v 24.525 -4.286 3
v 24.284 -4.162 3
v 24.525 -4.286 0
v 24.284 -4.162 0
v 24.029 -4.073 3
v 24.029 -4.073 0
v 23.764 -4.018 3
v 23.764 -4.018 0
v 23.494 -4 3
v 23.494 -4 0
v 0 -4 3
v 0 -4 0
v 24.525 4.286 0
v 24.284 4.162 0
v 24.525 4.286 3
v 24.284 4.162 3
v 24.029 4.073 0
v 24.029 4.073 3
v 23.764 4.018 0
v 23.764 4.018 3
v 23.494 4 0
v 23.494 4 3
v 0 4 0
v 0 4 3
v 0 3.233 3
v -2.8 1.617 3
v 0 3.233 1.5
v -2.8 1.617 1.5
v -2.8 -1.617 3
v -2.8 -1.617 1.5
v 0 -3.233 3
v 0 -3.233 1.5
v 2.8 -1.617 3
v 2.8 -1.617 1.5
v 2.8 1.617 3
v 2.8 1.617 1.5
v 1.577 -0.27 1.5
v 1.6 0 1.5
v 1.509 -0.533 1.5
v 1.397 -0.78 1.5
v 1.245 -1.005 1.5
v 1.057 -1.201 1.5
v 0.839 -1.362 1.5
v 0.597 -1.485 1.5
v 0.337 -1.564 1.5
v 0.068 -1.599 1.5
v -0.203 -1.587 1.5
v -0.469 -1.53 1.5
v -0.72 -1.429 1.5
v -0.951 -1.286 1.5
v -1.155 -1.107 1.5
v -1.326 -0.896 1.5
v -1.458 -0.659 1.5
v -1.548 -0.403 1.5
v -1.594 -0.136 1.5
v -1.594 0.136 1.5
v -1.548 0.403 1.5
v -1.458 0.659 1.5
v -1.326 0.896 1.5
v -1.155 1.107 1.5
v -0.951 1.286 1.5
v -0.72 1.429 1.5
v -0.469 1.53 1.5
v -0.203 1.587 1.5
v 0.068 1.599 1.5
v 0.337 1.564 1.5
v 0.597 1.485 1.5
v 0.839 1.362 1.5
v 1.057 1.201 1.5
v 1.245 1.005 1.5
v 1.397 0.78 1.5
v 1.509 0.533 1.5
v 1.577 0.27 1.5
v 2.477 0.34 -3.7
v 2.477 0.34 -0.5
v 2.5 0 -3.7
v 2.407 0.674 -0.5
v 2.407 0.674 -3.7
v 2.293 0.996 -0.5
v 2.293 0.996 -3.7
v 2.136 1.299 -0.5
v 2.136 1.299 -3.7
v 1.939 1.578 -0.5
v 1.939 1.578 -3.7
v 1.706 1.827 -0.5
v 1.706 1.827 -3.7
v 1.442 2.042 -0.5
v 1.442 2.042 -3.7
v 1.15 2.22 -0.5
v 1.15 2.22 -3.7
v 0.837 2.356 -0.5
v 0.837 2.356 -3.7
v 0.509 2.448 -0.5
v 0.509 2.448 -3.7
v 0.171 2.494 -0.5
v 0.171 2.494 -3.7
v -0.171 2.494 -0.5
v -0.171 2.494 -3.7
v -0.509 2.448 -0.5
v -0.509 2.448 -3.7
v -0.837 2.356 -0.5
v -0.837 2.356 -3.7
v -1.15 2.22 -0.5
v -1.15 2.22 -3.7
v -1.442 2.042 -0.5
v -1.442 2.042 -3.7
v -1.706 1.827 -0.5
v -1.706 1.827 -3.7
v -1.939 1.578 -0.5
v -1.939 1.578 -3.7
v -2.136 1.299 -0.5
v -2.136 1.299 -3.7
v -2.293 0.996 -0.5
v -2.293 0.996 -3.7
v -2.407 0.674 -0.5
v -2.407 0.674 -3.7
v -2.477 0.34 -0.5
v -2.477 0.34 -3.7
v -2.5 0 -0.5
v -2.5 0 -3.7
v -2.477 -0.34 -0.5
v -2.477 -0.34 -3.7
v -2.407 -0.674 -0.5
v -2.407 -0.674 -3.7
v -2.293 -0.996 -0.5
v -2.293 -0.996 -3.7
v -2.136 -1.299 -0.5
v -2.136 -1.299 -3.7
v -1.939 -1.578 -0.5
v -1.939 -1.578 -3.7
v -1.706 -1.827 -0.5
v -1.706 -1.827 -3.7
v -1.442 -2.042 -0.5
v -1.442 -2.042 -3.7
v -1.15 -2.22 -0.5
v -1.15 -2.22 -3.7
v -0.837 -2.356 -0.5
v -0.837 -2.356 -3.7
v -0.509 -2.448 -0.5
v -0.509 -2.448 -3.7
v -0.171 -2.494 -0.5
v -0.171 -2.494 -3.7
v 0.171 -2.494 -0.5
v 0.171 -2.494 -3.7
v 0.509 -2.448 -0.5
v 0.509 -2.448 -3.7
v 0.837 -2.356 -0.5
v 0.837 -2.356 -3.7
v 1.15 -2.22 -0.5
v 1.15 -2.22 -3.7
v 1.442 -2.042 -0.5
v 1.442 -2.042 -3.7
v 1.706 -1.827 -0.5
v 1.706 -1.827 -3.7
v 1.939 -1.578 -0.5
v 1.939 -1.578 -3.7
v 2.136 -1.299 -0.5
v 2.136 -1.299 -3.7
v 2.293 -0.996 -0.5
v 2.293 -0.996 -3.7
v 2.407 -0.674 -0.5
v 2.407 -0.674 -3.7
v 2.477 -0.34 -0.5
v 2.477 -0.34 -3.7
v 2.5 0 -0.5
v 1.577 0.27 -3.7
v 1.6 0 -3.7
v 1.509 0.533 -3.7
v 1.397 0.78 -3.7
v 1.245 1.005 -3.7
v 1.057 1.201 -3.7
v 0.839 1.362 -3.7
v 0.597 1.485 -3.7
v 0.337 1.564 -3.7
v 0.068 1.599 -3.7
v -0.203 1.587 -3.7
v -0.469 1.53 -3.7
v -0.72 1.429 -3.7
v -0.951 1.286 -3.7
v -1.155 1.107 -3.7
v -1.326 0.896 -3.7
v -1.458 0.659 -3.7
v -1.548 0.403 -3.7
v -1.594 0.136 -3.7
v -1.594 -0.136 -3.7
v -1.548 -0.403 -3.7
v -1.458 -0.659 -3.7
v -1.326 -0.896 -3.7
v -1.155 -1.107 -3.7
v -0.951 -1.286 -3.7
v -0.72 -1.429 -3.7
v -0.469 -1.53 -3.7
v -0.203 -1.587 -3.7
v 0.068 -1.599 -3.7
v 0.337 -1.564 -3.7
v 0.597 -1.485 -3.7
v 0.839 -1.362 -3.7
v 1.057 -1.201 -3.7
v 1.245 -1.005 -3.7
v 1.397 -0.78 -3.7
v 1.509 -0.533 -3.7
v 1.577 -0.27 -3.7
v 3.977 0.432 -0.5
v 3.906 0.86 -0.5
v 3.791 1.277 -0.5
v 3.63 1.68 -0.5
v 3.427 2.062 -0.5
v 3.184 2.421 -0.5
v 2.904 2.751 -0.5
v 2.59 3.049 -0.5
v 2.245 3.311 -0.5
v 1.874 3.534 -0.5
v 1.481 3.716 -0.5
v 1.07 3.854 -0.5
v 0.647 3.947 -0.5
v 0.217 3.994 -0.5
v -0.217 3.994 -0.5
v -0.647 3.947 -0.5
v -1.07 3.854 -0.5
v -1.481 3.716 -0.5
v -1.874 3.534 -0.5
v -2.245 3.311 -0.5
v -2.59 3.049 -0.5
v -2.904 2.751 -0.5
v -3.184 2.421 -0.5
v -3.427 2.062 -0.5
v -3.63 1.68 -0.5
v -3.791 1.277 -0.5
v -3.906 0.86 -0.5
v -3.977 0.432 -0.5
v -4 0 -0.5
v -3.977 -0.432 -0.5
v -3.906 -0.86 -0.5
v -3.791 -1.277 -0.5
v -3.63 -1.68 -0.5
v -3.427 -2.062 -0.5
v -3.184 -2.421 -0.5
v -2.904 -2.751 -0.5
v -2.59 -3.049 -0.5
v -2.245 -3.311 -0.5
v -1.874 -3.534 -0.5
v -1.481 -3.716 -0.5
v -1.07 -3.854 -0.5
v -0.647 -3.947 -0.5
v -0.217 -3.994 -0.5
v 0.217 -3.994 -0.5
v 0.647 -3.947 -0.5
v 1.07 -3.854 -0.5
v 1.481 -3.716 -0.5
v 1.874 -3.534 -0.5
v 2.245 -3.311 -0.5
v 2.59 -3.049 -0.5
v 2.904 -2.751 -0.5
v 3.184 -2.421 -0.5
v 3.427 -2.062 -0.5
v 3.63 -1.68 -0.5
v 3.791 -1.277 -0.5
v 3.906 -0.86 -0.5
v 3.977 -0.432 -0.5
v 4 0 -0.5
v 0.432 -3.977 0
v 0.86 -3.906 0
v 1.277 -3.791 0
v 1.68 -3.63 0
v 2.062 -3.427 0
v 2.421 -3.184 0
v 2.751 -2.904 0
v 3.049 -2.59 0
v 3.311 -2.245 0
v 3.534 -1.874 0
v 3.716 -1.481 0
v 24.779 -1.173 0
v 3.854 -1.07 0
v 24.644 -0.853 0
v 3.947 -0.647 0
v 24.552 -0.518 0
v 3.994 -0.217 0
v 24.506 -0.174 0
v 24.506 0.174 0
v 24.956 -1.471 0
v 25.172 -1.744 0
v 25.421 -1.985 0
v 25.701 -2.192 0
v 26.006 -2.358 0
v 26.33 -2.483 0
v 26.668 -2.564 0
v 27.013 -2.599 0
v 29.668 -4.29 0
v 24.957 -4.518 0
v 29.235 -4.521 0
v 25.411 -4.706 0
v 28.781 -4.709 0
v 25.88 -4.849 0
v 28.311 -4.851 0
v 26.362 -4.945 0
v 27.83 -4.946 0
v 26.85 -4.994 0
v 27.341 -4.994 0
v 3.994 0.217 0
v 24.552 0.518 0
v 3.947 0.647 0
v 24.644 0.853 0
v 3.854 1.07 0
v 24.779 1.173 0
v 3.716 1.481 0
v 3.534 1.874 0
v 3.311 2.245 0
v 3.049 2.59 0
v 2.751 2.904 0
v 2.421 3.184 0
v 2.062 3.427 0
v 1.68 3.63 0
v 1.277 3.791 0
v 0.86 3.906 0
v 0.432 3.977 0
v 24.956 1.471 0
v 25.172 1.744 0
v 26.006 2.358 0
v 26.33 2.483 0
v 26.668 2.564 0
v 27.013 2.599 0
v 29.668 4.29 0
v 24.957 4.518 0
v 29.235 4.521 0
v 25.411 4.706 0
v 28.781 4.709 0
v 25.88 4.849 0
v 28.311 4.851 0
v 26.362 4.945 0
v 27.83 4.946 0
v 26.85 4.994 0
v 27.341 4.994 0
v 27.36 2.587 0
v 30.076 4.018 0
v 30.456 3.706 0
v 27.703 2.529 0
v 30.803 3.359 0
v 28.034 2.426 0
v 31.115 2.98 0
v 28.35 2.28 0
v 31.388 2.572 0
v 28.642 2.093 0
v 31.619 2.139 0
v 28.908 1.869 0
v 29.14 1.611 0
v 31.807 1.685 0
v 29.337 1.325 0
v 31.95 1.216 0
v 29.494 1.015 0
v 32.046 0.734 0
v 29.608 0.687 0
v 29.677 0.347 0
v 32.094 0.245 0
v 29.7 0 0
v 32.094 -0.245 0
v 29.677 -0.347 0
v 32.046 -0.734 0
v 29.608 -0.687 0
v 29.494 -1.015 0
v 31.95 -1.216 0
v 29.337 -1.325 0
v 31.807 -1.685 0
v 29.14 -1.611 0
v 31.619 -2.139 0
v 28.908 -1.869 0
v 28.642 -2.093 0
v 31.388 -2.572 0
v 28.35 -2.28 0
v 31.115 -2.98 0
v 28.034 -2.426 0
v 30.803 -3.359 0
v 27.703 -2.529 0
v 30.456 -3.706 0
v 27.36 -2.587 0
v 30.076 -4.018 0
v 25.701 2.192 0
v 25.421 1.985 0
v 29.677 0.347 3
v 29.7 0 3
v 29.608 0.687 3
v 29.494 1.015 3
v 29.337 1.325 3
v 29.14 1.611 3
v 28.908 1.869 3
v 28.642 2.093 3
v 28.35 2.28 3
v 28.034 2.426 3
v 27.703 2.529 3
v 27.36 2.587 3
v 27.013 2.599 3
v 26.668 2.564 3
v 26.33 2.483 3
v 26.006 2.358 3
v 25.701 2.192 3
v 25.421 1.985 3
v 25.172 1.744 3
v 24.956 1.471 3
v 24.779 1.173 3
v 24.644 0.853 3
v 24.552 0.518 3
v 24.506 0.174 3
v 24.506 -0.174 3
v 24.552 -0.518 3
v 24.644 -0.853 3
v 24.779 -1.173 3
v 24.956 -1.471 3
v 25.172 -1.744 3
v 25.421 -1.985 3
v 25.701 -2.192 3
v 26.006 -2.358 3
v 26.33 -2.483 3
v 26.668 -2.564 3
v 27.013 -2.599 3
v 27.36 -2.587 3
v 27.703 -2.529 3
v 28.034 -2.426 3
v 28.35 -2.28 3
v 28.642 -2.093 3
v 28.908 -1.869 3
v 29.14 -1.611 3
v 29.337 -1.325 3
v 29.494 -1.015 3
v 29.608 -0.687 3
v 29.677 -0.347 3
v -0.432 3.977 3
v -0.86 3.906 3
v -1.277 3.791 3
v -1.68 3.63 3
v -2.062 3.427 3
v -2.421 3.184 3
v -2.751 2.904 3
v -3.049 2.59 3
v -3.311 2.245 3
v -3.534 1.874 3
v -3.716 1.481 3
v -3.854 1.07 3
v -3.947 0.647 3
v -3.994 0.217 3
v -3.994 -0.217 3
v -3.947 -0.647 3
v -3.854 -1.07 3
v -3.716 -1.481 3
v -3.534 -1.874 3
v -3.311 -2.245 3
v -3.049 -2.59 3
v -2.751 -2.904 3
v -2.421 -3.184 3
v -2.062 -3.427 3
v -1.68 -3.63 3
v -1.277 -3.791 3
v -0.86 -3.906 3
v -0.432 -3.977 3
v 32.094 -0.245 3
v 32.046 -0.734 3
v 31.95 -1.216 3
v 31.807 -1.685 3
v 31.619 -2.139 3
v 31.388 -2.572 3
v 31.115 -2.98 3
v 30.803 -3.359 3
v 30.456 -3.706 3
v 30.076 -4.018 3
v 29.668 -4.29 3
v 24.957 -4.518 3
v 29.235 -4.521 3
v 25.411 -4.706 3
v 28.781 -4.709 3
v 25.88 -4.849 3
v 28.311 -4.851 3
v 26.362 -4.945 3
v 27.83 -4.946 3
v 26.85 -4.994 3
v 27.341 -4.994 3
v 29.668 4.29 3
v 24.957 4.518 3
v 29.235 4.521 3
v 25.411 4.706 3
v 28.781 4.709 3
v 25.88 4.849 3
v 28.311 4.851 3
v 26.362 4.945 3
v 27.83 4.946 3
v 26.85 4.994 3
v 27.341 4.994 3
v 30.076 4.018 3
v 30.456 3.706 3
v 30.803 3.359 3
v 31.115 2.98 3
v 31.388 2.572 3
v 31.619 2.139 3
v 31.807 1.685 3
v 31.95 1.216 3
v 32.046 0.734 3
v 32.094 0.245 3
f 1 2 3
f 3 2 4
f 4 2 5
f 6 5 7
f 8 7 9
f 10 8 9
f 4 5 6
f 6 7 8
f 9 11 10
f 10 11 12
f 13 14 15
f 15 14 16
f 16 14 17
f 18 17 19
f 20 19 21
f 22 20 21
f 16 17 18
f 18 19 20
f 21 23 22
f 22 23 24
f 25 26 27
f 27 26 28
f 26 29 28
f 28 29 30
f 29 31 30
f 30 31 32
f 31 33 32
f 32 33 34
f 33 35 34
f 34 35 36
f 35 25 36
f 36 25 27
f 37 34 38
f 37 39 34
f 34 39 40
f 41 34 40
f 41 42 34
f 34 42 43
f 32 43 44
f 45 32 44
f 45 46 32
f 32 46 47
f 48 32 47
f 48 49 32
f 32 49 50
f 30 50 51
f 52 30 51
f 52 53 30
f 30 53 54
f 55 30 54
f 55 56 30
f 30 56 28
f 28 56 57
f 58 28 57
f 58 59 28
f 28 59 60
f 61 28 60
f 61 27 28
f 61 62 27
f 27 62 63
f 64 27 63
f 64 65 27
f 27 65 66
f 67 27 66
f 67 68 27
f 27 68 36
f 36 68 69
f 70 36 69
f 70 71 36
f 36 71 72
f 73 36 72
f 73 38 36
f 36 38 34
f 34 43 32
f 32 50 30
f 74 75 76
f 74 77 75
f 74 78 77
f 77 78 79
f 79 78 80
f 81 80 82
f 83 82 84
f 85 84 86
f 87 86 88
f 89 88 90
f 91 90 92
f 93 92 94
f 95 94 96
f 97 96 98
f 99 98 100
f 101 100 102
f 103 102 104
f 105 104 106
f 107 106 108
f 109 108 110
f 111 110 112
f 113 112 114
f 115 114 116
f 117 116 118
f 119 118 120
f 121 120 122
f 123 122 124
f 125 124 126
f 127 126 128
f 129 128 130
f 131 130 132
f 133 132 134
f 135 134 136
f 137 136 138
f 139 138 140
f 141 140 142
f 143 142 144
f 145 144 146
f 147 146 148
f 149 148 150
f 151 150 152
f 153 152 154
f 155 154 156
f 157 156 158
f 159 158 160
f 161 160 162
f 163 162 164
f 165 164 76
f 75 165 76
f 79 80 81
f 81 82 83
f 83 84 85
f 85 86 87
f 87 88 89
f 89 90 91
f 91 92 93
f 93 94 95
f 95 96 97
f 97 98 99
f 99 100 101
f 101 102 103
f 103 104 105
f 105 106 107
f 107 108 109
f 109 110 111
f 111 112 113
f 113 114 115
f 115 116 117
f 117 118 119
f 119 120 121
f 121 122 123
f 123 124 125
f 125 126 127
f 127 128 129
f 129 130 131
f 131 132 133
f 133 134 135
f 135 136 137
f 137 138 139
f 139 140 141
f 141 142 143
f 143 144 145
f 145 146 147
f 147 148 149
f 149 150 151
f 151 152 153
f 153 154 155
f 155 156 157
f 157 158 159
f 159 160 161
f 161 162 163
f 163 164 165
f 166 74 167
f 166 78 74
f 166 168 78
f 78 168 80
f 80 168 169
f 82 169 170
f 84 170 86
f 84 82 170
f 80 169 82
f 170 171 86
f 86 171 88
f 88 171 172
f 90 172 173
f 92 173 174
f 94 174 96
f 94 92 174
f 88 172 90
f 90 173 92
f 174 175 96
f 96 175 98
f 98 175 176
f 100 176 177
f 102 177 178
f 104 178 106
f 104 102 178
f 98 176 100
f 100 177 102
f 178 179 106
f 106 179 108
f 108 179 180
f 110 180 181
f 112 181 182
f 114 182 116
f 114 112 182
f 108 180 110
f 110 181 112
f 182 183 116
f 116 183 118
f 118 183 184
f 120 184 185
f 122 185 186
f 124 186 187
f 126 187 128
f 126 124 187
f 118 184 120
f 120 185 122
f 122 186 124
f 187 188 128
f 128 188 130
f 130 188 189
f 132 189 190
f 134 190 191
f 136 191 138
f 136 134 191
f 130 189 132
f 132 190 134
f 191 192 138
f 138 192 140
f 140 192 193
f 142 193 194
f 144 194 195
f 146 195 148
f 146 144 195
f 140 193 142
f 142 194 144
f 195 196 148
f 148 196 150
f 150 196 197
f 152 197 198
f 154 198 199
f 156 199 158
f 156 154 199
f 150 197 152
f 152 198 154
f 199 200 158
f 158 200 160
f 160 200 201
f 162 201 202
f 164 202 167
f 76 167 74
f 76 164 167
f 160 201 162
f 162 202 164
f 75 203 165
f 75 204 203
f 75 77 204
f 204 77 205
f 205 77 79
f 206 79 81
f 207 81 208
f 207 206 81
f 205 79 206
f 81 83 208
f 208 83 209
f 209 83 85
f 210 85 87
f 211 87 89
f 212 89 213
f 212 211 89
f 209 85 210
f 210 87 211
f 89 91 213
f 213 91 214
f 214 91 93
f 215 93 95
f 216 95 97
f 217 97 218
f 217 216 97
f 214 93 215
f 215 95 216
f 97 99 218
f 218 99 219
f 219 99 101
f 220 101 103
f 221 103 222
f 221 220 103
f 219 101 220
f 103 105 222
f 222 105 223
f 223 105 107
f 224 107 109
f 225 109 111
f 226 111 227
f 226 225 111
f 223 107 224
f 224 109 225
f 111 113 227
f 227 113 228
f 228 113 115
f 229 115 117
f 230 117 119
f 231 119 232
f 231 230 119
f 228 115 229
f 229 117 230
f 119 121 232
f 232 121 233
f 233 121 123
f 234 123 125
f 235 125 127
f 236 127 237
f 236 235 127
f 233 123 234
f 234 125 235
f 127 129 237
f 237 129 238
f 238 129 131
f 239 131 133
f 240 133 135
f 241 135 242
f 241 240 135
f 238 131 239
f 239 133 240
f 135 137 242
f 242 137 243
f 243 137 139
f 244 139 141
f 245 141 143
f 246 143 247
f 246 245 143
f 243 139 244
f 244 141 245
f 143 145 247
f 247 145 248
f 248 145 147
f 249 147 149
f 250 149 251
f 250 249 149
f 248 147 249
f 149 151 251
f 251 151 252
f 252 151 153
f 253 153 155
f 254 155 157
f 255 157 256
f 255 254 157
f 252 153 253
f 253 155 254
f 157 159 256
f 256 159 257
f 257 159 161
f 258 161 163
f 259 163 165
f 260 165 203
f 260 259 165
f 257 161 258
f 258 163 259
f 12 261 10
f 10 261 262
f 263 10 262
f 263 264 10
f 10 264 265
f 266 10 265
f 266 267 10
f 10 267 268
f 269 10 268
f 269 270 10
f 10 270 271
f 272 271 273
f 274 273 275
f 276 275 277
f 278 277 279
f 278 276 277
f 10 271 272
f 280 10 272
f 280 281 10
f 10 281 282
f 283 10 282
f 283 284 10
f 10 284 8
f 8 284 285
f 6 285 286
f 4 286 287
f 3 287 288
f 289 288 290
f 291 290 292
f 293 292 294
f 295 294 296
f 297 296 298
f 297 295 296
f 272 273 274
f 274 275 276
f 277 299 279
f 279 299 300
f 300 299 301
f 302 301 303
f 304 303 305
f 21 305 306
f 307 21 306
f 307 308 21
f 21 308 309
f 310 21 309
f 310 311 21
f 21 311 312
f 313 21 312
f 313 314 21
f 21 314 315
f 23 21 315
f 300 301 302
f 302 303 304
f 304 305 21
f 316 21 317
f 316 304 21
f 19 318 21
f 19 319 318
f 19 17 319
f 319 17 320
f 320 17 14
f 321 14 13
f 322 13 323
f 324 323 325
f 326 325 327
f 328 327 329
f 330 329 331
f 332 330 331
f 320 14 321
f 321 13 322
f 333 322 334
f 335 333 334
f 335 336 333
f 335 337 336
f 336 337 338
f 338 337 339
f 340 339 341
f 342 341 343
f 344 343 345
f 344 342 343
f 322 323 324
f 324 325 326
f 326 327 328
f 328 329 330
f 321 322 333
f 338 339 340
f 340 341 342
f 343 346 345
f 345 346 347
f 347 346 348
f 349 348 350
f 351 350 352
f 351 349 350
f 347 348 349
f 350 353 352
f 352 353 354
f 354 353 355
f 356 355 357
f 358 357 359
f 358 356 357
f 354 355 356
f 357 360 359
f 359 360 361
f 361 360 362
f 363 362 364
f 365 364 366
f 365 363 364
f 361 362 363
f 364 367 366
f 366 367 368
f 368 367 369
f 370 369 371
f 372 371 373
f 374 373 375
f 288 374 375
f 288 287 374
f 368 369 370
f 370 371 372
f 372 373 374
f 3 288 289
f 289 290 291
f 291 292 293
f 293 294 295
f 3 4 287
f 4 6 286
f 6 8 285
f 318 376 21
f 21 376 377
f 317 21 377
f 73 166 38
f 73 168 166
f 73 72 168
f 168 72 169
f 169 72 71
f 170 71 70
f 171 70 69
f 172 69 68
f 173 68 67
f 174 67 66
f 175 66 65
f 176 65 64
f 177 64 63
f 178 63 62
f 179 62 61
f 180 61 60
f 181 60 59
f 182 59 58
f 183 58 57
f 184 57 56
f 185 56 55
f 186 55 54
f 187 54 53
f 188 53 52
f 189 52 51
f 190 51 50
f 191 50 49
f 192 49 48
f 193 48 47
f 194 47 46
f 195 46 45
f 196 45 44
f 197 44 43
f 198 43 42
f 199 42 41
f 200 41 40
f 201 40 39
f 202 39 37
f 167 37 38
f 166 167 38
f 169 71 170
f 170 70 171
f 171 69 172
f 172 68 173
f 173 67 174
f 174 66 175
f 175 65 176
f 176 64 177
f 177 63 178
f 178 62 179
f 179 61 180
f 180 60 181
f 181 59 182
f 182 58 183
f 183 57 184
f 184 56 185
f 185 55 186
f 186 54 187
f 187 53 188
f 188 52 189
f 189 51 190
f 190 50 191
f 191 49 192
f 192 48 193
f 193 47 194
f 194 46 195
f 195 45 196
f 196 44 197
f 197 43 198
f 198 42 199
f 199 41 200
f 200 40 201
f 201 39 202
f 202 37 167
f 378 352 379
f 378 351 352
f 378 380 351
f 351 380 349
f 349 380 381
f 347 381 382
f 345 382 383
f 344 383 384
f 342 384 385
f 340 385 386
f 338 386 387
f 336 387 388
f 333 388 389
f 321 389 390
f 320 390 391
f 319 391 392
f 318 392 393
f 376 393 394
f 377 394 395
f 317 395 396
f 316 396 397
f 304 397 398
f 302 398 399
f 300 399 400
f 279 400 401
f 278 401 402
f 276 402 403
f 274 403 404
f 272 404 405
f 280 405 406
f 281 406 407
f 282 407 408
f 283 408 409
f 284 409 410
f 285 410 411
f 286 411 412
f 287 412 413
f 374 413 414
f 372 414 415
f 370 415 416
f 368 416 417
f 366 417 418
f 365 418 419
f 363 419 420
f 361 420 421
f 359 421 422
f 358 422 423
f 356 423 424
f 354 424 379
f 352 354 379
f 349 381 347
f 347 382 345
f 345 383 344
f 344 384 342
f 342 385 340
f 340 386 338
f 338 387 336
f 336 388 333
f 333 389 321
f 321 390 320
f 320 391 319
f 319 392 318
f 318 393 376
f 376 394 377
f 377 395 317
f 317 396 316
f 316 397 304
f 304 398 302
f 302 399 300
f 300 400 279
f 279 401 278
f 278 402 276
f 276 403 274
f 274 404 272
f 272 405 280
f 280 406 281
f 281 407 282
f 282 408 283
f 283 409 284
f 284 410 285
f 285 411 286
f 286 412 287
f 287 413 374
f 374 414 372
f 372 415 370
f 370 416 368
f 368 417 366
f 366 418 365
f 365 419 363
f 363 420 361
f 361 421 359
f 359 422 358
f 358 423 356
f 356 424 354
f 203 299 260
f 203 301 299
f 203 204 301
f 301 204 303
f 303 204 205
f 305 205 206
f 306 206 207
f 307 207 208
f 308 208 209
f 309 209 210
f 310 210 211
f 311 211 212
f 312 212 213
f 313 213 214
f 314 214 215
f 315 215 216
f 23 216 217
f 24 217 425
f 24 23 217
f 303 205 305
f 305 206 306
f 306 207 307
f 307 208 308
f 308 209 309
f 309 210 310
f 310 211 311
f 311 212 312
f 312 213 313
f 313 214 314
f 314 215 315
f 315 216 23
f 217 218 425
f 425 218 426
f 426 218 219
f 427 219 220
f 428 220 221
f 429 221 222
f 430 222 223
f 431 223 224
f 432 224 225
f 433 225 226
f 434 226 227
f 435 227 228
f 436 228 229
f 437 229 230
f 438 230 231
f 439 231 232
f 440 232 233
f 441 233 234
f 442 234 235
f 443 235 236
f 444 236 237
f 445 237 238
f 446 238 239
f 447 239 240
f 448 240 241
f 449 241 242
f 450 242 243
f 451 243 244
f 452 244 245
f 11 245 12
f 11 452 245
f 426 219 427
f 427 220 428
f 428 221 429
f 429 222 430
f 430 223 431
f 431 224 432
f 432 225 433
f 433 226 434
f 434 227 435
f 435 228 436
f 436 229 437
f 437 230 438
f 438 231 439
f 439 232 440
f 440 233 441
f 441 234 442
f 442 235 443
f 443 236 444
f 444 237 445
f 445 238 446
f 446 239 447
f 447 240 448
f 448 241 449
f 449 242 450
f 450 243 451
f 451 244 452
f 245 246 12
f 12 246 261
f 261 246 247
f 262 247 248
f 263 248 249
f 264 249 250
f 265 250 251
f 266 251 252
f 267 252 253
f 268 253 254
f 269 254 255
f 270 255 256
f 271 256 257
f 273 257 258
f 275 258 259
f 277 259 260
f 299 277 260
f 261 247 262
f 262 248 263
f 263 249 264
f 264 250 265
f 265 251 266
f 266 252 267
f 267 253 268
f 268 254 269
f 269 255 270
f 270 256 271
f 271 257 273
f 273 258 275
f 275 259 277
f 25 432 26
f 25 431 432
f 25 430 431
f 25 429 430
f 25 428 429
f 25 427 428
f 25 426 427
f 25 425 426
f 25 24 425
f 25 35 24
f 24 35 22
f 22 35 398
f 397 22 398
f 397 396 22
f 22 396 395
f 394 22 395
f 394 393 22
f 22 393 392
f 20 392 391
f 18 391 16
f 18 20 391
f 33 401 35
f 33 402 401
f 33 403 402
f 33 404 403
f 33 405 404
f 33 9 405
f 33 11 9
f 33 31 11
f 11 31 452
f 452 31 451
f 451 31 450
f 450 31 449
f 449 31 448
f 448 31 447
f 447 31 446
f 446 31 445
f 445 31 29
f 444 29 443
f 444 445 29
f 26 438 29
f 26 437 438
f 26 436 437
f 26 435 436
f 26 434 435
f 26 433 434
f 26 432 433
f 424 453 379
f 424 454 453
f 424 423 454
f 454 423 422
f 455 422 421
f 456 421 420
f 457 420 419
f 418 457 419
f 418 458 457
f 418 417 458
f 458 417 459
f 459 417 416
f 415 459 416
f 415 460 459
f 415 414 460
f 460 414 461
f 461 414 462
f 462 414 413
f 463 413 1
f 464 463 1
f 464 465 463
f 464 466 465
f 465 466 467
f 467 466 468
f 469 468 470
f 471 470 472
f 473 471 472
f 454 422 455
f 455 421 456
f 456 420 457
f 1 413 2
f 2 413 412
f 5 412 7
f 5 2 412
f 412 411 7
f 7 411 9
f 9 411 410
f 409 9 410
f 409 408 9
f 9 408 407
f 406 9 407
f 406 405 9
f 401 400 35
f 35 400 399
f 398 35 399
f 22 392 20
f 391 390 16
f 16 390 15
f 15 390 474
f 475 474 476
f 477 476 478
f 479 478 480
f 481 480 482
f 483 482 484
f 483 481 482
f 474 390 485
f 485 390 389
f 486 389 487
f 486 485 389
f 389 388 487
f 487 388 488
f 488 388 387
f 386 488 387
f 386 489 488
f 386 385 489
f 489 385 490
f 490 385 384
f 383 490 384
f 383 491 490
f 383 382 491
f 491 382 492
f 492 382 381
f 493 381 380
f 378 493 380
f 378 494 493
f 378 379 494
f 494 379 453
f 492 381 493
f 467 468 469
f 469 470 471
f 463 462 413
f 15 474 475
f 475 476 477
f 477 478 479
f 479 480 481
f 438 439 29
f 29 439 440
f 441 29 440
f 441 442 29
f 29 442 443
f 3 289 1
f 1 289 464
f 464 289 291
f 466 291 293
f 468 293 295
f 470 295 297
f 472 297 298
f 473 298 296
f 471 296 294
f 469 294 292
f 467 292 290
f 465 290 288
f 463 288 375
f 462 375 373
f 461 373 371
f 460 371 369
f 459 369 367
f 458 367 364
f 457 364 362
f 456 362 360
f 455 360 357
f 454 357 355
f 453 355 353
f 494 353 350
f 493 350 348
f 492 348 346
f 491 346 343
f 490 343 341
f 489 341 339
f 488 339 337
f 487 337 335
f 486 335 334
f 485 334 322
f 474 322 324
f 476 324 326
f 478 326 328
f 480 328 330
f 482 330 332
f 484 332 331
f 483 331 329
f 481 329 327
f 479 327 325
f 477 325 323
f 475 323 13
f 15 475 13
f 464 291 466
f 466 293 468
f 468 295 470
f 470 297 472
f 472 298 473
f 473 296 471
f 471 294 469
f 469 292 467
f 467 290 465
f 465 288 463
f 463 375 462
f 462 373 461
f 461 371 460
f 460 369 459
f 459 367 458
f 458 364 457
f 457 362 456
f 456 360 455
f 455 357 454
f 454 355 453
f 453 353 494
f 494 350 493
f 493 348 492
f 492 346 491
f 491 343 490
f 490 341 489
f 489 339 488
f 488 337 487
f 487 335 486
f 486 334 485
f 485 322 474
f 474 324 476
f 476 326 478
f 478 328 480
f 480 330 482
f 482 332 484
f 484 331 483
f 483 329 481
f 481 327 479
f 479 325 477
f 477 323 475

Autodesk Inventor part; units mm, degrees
ref_plane "YZ Plane" through (0, 0, 0) normal (1, 0, 0) x (0, 1, 0)
ref_plane "XZ Plane" through (0, 0, 0) normal (0, 1, 0) x (-1, 0, 0)
ref_plane "XY Plane" through (0, 0, 0) normal (0, 0, 1) x (1, 0, 0)
sketch "スケッチ1" plane through (0, 0, 0) normal (0, 0, 1) x (1, 0, 0)
  line L0 (0, 0) -> (27.1, 0) construction
  line L1 (0, -4) -> (27.1, -4)
  line L2 (27.1, 4) -> (0, 4)
  arc A0 (0, 4) -> (0, -4) centre (0, 0) ccw
  arc A1 (27.1, -4) -> (27.1, 4) centre (27.1, 0) ccw
  circle A2 centre (0, 0) radius 1.6
  circle A3 centre (27.1, 0) radius 2.6
  circle A4 centre (27.1, 0) radius 5
  point P0 (13.55, 0)
  dimension "d0" = 27.1
  dimension "d1" = 4
  dimension "d2" = 3.2
  dimension "d3" = 5.2
  dimension "d6" = 10
extrude "押し出し1" add sketch "スケッチ1" along normal blind 3
sketch "スケッチ3" plane through (0, 0, 0) normal (0, 0, 1) x (1, 0, 0)
  circle A0 centre (0, 0) radius 4
  circle A1 centre (0, 0) radius 1.6
  dimension "d7" = 8
  dimension "d10" = 3.2
extrude "押し出し2" add sketch "スケッチ3" against normal blind 0.5
sketch "スケッチ4" plane through (0, 0, 0) normal (0, 0, 1) x (1, 0, 0)
  circle A0 centre (0, 0) radius 1.6
  circle A1 centre (0, 0) radius 2.5
  dimension "d11" = 5
  dimension "d12" = 3.2
extrude "押し出し3" add sketch "スケッチ4" against normal blind 3.7
sketch "スケッチ5" plane through (0, 0, 3) normal (0, 0, 1) x (1, 0, 0)
  circle A0 centre (0, 0) radius 1.6 projected
  arc A1 (0, 4) -> (0, -4) centre (0, 0) ccw projected
  line L0 (0, 3.2332) -> (2.8, 1.6166)
  line L1 (2.8, 1.6166) -> (2.8, -1.6166)
  line L2 (2.8, -1.6166) -> (0, -3.2332)
  line L3 (0, -3.2332) -> (-2.8, -1.6166)
  line L4 (-2.8, -1.6166) -> (-2.8, 1.6166)
  line L5 (-2.8, 1.6166) -> (0, 3.2332)
  dimension "d15" = 5.6
extrude "押し出し4" cut sketch "スケッチ5" against normal blind 1.5
fillet "フィレット1" radius 2 2 edges at (24.1, 4, 1.5) (24.1, -4, 1.5)
properties part number "link_long"
